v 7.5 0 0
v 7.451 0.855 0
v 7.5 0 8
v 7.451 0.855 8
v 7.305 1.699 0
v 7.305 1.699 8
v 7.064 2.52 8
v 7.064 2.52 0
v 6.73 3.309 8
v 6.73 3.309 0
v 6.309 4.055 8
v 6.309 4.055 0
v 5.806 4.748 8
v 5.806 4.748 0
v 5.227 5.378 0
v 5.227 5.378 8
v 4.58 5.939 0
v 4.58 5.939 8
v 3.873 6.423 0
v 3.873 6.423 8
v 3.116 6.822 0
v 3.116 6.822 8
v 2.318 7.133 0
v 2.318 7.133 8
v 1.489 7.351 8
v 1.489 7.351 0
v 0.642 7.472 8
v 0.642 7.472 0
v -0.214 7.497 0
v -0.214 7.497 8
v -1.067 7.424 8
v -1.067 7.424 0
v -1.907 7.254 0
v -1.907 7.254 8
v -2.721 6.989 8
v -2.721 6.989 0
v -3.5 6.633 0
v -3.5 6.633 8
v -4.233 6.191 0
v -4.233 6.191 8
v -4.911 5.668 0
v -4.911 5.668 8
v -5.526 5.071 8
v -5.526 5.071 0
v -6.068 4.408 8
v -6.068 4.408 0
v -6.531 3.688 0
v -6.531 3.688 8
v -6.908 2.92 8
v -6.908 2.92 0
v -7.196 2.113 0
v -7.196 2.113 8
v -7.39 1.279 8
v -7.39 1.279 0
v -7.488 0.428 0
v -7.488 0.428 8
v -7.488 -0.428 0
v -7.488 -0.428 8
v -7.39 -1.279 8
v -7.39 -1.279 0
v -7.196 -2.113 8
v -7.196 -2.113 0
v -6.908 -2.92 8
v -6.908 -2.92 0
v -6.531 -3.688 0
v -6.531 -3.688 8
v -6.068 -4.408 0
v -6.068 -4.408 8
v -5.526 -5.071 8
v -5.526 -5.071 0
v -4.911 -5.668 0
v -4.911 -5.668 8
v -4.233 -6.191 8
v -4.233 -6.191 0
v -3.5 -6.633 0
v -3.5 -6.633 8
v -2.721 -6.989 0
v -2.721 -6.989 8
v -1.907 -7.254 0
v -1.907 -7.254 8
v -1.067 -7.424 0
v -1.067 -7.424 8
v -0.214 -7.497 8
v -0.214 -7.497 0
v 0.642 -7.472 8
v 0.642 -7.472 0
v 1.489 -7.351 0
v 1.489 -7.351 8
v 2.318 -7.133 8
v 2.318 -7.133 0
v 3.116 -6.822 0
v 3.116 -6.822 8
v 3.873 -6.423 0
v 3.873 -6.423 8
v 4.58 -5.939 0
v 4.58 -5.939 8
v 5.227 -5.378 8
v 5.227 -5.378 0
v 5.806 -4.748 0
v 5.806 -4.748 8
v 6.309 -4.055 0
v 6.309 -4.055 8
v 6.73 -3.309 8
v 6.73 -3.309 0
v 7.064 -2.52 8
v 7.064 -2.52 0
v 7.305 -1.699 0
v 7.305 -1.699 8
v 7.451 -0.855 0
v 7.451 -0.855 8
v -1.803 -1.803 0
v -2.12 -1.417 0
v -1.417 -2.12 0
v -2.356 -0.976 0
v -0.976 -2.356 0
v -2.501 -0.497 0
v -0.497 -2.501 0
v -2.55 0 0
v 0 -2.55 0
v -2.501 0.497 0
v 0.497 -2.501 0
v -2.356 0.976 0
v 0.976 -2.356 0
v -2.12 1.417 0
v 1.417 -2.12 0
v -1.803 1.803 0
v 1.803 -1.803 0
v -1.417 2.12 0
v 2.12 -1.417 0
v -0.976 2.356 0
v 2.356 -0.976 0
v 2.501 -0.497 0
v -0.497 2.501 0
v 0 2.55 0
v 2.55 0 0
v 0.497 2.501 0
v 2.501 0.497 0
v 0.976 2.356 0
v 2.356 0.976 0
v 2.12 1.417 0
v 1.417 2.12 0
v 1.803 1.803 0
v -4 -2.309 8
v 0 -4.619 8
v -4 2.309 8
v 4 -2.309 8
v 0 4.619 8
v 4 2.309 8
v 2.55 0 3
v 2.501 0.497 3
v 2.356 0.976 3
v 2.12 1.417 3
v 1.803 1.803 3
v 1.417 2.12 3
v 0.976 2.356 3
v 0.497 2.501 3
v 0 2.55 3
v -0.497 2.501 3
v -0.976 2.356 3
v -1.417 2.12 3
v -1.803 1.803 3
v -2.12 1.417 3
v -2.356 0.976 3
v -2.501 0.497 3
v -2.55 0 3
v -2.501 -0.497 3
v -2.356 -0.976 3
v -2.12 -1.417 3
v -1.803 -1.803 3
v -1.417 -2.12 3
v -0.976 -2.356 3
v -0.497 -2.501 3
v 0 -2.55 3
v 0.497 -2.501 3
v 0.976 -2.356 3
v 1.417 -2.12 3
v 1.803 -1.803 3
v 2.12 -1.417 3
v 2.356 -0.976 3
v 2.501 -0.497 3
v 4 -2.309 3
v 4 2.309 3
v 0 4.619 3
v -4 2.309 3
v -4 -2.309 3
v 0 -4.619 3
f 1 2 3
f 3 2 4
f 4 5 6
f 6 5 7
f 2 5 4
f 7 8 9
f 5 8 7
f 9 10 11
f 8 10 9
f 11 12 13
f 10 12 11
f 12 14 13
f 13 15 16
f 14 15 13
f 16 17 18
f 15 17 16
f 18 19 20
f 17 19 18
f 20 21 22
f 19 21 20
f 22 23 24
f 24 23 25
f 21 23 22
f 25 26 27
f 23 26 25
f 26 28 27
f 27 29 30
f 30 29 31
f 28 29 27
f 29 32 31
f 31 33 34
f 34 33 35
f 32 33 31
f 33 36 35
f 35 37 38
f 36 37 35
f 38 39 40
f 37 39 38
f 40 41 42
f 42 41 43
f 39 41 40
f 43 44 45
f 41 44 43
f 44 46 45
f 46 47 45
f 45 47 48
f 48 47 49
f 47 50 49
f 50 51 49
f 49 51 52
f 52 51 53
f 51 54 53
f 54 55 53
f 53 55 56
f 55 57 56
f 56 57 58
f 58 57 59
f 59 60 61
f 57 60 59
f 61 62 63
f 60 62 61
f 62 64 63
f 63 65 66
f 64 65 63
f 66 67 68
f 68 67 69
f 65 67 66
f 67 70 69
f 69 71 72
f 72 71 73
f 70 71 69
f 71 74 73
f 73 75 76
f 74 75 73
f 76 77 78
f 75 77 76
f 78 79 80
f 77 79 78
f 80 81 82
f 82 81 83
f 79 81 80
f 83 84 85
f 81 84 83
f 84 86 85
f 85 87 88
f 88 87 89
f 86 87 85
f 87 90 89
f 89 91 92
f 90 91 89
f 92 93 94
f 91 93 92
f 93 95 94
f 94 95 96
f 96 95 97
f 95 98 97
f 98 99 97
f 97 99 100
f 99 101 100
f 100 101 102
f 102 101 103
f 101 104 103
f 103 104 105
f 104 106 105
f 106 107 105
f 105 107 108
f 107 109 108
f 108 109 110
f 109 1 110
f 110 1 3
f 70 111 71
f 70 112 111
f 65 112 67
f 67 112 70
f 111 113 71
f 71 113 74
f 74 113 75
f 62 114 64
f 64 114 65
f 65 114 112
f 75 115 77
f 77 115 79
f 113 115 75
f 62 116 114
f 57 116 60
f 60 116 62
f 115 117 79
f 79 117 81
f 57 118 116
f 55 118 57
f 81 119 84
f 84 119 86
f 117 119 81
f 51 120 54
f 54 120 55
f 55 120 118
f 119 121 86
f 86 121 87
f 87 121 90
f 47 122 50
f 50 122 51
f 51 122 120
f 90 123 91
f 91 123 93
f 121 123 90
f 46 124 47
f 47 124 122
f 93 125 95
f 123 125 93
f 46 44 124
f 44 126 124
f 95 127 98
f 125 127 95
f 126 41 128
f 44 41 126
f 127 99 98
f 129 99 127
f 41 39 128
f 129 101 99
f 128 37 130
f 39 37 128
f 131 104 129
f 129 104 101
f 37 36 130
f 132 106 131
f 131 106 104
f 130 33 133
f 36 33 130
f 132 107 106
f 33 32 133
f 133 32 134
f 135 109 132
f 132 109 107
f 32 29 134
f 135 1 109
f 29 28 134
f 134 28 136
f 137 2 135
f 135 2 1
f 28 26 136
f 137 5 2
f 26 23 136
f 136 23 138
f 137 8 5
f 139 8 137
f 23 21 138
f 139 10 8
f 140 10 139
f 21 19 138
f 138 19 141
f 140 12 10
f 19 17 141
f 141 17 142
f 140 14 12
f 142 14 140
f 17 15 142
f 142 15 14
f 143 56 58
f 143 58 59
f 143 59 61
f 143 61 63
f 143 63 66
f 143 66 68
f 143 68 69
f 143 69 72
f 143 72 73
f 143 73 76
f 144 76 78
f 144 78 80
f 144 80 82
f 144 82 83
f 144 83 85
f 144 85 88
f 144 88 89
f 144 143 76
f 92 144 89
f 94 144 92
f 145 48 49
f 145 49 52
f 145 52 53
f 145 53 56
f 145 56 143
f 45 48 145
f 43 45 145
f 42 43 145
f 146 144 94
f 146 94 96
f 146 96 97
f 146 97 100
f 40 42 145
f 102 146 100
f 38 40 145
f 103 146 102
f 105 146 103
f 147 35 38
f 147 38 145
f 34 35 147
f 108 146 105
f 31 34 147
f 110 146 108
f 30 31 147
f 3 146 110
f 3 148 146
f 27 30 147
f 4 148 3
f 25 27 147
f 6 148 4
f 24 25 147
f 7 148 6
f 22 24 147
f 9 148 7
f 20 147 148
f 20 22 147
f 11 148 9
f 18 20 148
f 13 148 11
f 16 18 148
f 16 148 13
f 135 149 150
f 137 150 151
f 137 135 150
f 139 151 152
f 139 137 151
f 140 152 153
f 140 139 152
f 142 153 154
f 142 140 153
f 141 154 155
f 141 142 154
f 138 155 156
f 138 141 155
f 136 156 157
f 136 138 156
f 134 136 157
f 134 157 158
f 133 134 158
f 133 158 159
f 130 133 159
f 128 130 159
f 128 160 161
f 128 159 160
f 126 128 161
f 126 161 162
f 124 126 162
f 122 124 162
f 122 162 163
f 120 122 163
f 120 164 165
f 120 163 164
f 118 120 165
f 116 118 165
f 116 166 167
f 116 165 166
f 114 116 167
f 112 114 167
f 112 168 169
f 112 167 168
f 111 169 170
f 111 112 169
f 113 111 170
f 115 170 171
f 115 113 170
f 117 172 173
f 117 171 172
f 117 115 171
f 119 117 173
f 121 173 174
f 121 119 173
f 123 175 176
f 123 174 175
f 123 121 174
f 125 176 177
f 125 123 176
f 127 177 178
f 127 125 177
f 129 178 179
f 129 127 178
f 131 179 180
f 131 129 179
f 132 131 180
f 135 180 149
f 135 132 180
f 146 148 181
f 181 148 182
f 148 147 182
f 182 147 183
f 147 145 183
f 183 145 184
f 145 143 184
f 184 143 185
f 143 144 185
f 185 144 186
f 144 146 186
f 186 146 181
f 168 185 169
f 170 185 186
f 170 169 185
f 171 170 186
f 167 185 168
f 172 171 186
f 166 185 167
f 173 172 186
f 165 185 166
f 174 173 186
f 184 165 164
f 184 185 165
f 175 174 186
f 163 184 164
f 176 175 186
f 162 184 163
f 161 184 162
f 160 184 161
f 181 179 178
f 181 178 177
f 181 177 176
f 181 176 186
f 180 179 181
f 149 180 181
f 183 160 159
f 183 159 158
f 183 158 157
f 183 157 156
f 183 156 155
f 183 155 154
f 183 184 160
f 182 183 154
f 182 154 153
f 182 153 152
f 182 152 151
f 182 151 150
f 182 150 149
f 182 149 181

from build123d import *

# Parameters (mm, degrees)
EXTRUDE001_DEPTH = 5
FACE_R           = 7.5
FACE_R_2         = 2.55
EXTRUDE_DEPTH    = 8


with BuildPart() as extrude001:
    # Sketch001 (on Face4 of Extrude) → Extrude001 (new body)
    with BuildSketch(Plane.XY.offset(8)):
        Polygon((4, -2.309401), (4, 2.309401), (0, 4.618802), (-4, 2.309401), (-4, -2.309401), (0, -4.618802), align=None)
    extrude(amount=-EXTRUDE001_DEPTH)


with BuildPart() as cut:
    # Face → Extrude (new body)
    with BuildSketch(Plane(origin=(0, 0, 0), x_dir=(0, 1, 0), z_dir=(0, 0, 1))):
        Circle(FACE_R)
        Circle(FACE_R_2, mode=Mode.SUBTRACT)
    extrude(amount=EXTRUDE_DEPTH)

    # Cut: cut Extrude001
    add(extrude001.part, mode=Mode.SUBTRACT)


solid = cut.part
